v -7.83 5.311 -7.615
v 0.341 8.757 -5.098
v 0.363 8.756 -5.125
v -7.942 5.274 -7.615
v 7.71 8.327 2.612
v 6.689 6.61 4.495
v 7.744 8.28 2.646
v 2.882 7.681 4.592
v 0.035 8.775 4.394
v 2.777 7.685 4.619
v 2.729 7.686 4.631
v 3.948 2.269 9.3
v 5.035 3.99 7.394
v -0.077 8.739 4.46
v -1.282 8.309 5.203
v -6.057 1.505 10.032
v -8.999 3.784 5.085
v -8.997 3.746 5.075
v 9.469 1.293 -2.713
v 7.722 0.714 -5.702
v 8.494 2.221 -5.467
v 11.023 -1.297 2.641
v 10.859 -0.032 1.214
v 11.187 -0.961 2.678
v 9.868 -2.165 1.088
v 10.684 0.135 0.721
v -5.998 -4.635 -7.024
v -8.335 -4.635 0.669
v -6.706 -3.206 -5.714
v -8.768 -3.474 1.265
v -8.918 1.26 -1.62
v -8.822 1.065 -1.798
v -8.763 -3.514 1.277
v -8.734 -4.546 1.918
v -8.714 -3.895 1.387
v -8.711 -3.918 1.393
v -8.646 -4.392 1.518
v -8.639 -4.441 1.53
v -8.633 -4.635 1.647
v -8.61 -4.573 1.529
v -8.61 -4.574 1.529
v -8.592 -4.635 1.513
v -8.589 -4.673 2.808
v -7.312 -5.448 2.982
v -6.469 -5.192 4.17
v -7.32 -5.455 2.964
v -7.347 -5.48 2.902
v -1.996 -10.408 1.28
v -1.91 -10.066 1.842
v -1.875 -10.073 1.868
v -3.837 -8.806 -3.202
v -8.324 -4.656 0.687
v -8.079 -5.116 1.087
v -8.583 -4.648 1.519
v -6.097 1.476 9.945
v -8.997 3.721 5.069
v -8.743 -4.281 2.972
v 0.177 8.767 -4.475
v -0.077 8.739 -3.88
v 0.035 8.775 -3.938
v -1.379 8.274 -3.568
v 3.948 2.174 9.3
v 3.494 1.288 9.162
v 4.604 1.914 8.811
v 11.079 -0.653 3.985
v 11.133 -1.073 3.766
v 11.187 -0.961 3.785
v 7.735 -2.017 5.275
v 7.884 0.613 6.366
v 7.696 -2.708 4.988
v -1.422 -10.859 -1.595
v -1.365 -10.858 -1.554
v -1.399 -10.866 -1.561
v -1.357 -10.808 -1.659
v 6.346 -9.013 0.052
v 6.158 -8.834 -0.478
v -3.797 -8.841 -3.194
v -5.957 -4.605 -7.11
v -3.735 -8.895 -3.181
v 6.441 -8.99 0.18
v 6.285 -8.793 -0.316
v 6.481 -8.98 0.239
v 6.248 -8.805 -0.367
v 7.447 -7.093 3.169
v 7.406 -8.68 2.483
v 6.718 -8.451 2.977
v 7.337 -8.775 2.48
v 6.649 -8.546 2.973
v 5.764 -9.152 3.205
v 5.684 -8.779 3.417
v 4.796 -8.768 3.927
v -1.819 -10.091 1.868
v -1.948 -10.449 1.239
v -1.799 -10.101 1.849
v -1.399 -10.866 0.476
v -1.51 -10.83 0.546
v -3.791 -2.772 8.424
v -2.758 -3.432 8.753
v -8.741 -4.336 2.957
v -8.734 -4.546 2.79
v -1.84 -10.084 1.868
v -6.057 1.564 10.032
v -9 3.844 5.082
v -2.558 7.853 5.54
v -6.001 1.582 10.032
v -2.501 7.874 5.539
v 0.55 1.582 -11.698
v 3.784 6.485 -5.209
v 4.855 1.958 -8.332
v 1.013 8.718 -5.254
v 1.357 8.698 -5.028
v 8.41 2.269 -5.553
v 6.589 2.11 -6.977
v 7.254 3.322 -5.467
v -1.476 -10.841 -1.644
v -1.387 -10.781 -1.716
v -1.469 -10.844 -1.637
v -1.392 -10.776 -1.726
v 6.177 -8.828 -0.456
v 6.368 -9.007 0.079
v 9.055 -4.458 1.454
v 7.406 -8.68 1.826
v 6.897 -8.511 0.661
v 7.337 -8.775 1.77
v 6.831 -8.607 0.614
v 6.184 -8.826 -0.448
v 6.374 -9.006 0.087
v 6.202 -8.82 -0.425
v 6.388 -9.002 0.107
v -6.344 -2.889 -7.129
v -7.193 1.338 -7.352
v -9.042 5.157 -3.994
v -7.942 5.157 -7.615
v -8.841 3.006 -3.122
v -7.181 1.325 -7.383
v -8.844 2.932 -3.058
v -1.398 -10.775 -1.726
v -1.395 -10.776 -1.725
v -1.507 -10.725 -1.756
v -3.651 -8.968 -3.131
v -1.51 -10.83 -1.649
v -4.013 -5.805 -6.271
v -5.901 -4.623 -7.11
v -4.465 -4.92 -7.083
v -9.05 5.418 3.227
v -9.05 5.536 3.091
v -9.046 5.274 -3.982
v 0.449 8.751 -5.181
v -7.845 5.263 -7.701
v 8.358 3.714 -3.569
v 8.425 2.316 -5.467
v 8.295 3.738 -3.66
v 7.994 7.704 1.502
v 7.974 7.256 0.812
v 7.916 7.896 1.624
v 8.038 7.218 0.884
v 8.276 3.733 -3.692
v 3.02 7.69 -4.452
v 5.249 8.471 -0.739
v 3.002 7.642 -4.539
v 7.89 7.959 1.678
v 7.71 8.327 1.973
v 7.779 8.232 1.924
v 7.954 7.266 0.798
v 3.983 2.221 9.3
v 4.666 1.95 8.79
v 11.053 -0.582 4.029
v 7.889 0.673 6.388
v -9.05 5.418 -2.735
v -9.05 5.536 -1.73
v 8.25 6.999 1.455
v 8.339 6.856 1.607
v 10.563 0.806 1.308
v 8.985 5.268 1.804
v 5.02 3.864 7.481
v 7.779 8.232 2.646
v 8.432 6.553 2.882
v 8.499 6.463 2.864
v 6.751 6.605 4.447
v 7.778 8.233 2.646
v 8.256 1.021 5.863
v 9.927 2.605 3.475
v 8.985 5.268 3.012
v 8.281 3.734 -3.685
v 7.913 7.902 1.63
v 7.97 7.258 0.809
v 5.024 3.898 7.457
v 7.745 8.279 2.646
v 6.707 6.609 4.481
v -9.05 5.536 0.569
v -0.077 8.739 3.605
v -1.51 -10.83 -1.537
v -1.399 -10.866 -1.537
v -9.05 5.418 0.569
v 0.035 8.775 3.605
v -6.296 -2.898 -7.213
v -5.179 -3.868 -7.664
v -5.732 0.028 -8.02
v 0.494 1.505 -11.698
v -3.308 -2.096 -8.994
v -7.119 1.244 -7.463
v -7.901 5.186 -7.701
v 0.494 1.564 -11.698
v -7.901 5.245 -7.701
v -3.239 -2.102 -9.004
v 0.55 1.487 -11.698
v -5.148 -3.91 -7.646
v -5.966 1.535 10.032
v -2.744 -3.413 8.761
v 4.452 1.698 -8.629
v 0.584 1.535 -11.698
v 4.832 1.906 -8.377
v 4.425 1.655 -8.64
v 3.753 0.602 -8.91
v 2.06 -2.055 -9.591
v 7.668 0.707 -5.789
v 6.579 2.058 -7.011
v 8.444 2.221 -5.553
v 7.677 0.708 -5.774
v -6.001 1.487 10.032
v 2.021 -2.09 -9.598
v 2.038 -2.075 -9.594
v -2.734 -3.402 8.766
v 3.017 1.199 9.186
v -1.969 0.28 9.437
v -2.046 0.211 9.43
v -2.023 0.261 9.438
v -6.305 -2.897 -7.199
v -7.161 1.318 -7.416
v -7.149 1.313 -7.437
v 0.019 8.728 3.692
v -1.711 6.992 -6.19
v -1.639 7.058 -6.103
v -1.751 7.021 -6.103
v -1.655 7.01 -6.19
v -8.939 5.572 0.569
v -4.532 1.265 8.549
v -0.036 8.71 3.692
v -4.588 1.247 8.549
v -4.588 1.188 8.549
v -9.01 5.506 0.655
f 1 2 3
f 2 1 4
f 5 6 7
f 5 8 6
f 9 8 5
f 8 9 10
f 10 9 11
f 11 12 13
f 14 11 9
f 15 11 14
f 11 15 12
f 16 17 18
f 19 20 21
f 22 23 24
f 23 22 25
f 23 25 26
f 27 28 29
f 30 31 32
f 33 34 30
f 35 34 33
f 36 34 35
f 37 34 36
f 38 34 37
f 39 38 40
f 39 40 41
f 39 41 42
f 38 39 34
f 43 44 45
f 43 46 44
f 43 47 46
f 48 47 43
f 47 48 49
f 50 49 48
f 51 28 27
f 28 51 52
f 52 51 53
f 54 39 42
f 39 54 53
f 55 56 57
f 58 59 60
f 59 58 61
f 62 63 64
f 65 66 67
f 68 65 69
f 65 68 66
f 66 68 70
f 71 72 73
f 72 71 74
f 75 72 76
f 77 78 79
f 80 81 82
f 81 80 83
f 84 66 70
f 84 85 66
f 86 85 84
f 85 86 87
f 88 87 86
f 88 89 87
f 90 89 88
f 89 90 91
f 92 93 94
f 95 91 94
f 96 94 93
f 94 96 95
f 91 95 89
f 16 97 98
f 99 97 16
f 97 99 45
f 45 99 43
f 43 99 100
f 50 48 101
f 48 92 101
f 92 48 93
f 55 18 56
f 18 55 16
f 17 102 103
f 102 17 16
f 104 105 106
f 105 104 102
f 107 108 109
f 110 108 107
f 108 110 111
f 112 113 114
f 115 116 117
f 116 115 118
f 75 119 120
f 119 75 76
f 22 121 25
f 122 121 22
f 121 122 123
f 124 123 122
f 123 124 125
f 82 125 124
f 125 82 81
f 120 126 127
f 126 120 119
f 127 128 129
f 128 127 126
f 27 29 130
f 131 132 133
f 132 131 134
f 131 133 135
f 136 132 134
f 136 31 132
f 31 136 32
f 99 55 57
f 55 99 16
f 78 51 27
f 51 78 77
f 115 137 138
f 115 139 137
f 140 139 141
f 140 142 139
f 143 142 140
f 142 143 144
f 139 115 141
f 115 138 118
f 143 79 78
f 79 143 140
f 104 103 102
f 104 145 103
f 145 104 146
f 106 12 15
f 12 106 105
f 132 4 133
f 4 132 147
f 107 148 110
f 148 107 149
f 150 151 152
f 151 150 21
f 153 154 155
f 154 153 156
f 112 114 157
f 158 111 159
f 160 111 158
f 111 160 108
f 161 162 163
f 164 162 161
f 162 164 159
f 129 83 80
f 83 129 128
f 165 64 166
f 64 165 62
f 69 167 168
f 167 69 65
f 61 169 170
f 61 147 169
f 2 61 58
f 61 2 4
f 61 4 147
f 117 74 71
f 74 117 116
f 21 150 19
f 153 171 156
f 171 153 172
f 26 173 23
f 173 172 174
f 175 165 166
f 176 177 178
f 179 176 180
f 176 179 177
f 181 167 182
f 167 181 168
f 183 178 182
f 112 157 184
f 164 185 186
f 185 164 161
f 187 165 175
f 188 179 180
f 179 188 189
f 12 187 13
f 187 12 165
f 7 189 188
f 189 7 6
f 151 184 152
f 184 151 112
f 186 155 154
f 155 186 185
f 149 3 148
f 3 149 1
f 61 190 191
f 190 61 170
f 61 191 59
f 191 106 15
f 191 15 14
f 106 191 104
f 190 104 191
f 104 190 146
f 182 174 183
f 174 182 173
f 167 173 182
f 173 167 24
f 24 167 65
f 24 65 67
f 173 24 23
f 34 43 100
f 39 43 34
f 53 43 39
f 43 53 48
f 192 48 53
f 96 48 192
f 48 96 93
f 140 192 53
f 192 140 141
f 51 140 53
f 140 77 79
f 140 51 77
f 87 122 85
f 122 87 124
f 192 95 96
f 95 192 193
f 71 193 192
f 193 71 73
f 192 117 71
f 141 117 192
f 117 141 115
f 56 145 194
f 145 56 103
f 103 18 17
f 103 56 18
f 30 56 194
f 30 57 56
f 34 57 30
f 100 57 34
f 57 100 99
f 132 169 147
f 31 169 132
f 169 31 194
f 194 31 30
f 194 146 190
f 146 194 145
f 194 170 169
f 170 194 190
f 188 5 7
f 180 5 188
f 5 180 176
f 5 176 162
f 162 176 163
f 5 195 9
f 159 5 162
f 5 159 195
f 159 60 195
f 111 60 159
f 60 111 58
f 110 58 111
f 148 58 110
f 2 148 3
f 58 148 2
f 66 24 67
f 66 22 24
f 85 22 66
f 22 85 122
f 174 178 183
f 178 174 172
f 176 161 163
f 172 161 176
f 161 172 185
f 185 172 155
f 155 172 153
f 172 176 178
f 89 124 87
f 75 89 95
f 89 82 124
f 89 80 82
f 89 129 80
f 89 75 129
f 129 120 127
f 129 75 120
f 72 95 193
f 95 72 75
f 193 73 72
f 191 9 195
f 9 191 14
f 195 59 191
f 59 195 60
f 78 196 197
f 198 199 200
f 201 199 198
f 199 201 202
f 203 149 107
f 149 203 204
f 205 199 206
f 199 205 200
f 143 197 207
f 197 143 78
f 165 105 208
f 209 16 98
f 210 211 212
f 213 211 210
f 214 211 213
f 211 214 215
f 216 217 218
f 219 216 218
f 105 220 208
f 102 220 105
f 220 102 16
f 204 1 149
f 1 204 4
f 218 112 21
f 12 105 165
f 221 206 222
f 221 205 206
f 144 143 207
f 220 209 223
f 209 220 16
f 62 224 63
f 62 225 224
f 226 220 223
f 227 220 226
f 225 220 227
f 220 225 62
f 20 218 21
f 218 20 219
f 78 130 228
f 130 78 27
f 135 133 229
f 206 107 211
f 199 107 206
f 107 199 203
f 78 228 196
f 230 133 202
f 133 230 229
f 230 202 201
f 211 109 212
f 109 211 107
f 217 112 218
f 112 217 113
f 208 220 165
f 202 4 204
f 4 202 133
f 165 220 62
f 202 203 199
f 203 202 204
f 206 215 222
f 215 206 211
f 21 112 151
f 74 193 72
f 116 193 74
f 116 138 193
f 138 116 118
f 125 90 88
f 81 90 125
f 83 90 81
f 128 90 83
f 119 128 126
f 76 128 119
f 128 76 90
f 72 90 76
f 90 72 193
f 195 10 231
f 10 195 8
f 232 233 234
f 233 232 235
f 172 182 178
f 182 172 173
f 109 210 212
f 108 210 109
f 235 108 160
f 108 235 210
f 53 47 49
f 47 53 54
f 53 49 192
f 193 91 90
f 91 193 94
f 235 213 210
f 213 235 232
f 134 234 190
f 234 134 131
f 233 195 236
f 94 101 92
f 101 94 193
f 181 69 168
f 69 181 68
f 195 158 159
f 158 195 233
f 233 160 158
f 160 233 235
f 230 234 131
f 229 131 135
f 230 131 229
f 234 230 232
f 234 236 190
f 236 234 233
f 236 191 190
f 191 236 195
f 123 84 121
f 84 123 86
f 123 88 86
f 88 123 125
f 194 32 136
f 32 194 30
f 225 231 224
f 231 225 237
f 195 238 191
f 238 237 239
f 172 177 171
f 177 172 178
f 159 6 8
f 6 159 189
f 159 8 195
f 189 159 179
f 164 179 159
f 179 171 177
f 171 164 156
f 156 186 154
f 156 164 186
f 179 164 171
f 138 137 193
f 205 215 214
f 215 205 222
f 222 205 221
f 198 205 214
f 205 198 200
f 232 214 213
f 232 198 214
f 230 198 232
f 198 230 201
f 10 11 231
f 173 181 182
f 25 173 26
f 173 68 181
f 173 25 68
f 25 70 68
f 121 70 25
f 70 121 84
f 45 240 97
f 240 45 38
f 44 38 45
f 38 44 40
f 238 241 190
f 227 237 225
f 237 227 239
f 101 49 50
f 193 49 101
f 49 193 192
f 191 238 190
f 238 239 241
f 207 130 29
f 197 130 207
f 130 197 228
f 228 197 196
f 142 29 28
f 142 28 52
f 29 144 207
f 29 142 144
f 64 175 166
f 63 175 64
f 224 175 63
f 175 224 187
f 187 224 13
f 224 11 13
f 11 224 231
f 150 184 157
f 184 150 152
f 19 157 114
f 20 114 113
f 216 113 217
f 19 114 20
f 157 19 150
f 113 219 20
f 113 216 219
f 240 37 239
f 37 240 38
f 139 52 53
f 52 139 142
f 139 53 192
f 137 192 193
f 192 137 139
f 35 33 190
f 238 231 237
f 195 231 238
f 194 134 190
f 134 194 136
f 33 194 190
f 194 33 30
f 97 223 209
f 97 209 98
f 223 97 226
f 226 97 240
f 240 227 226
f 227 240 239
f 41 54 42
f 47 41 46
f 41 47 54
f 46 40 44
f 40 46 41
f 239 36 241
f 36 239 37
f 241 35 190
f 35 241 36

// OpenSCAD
// Auto-generated OpenSCAD file

    inner_points = 10*[[0.6535941979567257, -0.8423780651967159, 0.4034791044417876], [-0.45475527077662015, 0.12173810180083354, 0.8462002987147633], [1.1087469983058469, -0.09610029003660843, -0.0822218432991377], [0.00039752957250104026, 0.868015876960941, 0.360499350973838], [-0.14294424118494742, -1.0771335563343367, -0.15367112157493162], [-0.8653432213136825, -0.44874282271436344, 0.13488528436594405], [0.5553795083440791, 0.06785224566500801, -0.8988637397815697], [-0.16701947178465576, 0.6962429792849811, -0.610307333840694], [0.43334931670482335, -0.2194919314996312, 1.1541488432285814], [0.8885021170539444, 0.5267858436604762, 0.6684478954876559], [-0.12771221953520462, -0.6454687055329743, -1.0555765723285564], [-0.8501111996639396, -0.017077971913001103, -0.7670201663876808], [-0.2575336137198885, -0.8581337755119616, 0.8153017220599147], [0.7679103041582885, 0.8232048980029523, -0.2789661422409663], [0.7305959386426744, -0.8680335150915568, -0.5932217181835514], [-0.896944614521451, 0.5477096273154356, 0.05688613836460294]];

    outer_points = 10*[[-0.18922208692498615, 0.89482467771394, 0.46507464775708884], [-0.8824363020490245, -0.45759366314983685, 0.25441077470036644], [0.10154238982675173, 0.89482467771394, -0.4917200110173464], [-0.5916718252972866, -0.45759366314983685, -0.7023838840740688], [0.3933037355504648, 0.22212347338616487, 0.9212947216745572], [-0.05851877724295007, -0.6593544879502681, 0.7839884195205397], [0.8394126894652227, 0.22212347338616487, -0.5466791832035597], [0.38759017667180784, -0.6593544879502681, -0.6839854853575772], [-1.0768579152163809, 0.5215433861787323, 0.19532714781824523], [-0.7860934384646431, 0.5215433861787323, -0.76146751095619], [1.1573869332372195, -0.08080440551051582, 0.35172333264598116], [0.7055644204438046, -0.9622823668469488, 0.21441703049196367], [-0.6016466494277248, 0.15347458298643346, 0.9945139901674744], [0.053435916232416114, 0.15347458298643346, -1.161112126481694], [0.7830758127303129, 0.8394954849805947, 0.23797230352134466], [-0.23486507953500407, -1.1464446509534616, -0.07137416720712511]];

    // Convex hull for inner set (I)
    module inner_hull() {
        hull() {
            for (p = inner_points) {
                translate(p) sphere(r=0.1);
            }
        }
    }

    // Convex hull for outer set (O) minus inner hull (O \ I)
    module outer_minus_inner() {
        difference() {
            hull() {
                for (p = outer_points) {
                    translate(p) sphere(r=0.1);
                }
            }
            inner_hull(); // Subtract inner hull
        }
    }

    // Convex hull for outer set (O) minus all translated inner hulls
    module outer_minus_AllTranslationInner() {
        difference() {
            hull() {
                for (p = outer_points) {
                    translate(p) sphere(r=0.1);
                }
            }
            hull() {
                translate([0,0,50]) inner_hull();
                translate([0,0,-50]) inner_hull();
            }; // Subtract translated inner hulls
        }
    }

    // Difference between outer_minus_inner and outer_minus_AllTranslationInner
    module outer_minus_inner_diff() {
        difference() {
            // Outer minus inner
            difference() {
                hull() {
                    for (p = outer_points) {
                        translate(p) sphere(r=0.1);
                    }
                }
                inner_hull();
            }

            // Subtract Outer minus AllTranslationInner
            difference() {
                hull() {
                    for (p = outer_points) {
                        translate(p) sphere(r=0.1);
                    }
                }
                hull() {
                    translate([0,0,50]) inner_hull();
                    translate([0,0,-50]) inner_hull();
                };
            }
        }
    }

    // Rendering all with colors applied
    color([1, 1, 0, 1]) outer_minus_inner_diff(); // Opaque yellow
    
